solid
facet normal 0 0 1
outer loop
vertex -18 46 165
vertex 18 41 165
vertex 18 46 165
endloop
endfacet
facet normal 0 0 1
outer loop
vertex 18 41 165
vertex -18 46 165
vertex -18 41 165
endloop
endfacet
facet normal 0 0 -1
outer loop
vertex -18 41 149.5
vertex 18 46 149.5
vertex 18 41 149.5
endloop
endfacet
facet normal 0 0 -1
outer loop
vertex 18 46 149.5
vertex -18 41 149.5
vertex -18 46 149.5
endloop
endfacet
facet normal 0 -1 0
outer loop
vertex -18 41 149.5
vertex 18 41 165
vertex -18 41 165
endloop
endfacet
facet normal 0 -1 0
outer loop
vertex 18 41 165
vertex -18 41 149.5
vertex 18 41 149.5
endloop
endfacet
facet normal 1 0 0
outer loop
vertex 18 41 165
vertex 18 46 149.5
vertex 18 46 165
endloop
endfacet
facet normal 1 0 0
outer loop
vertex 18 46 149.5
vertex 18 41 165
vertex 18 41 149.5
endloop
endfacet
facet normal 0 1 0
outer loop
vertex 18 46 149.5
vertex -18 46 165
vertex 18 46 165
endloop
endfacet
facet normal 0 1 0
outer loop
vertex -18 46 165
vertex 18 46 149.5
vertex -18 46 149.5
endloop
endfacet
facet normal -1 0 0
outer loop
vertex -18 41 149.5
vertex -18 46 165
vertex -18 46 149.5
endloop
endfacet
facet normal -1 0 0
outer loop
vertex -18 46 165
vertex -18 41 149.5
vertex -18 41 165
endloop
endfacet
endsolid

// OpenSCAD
// file: local_modules/scad-utils/mirror.scad
// Copyright (c) 2013 Oskar Linde. All rights reserved.
// License: BSD
//
// This library contains simple mirroring functions
//
// mirror_x()
// mirror_y()
// mirror_z()


module mirror_x() {
  union() {
    child();
    scale([-1,1,1]) child();
  }
}

module mirror_y() {
  union() {
    child();
    scale([1,-1,1]) child();
  }
}

module mirror_z() {
  union() {
    child();
    scale([1,1,-1]) child();
  }
}
// file: local_modules/opiz_mount.scad
include <scad-utils/mirror.scad>

OPIZ_HOLES_BETWEEN_X=40.5;
OPIZ_HOLES_BETWEEN_Y=42;

OPIZ_MOUNT_X=4;
OPIZ_MOUNT_Z=1.5;
OPIZ_MOUNT_Y=OPIZ_MOUNT_X+4;

module opiz_mount_holes() {
  mirror_x()
  mirror_y()
  translate([OPIZ_HOLES_BETWEEN_X/2, OPIZ_HOLES_BETWEEN_Y/2, -3]) 
  cylinder(d=1.8, h=10, center=!true);
}

module opiz_mount_base() {
  mirror_x()
  mirror_y()
  translate([OPIZ_HOLES_BETWEEN_X/2, OPIZ_HOLES_BETWEEN_Y/2, 0]){
    // trapezoid
    hull(){
      // top
      translate([0, 0, OPIZ_MOUNT_Z])
      linear_extrude(height=0.01, center=!true, convexity=10, twist=0)
      square(size=[OPIZ_MOUNT_X, OPIZ_MOUNT_X], center=true);

      // bottom
      linear_extrude(height=0.01, center=!true, convexity=10, twist=0)
      square(size=[OPIZ_MOUNT_X, OPIZ_MOUNT_Y], center=true);
    }
  }
}

module opiz_mount(holes=false) {
  if (holes){
    opiz_mount_holes();
  }else{
    opiz_mount_base();
  }
}
// file: local_modules/lcd.scad
LCD_X=76;
LCD_Y=1.5;
LCD_Z=138;
LCD_DISP_X=LCD_X - 1.5 * 2;
LCD_DISP_Z_OFFSET_FROM_BOTTOM=6;
LCD_DISP_Z=LCD_Z-LCD_DISP_Z_OFFSET_FROM_BOTTOM - 1.5;

module lcd(margin=0, draw_display_region=false) {
  translate([0, 0, LCD_Z/2]){
    cube(size=[LCD_X+margin, LCD_Y+margin, LCD_Z+margin], center=true);

    if(draw_display_region){
      translate([0, 0, -(LCD_Z - LCD_DISP_Z)/2 + LCD_DISP_Z_OFFSET_FROM_BOTTOM]) 
      color("green", 0.5)
      cube(size=[LCD_DISP_X, LCD_Y, LCD_DISP_Z], center=true);
    }
  }
}
// file: scad-utils/morphology.scad
// Copyright (c) 2013 Oskar Linde. All rights reserved.
// License: BSD
//
// This library contains basic 2D morphology operations
//
// outset(d=1)            - creates a polygon at an offset d outside a 2D shape
// inset(d=1)             - creates a polygon at an offset d inside a 2D shape
// fillet(r=1)            - adds fillets of radius r to all concave corners of a 2D shape
// rounding(r=1)          - adds rounding to all convex corners of a 2D shape
// shell(d,center=false)  - makes a shell of width d along the edge of a 2D shape
//                        - positive values of d places the shell on the outside
//                        - negative values of d places the shell on the inside
//                        - center=true and positive d places the shell centered on the edge

module outset(d=1) {
	// Bug workaround for older OpenSCAD versions
	if (version_num() < 20130424) render() outset_extruded(d) children();
	else minkowski() {
		circle(r=d);
		children();
	}
}

module outset_extruded(d=1) {
   projection(cut=true) minkowski() {
        cylinder(r=d);
        linear_extrude(center=true) children();
   }
}

module inset(d=1) {
	 render() inverse() outset(d=d) inverse() children();
}

module fillet(r=1) {
	inset(d=r) render() outset(d=r) children();
}

module rounding(r=1) {
	outset(d=r) inset(d=r) children();
}

module shell(d,center=false) {
	if (center && d > 0) {
		difference() {
			outset(d=d/2) children();
			inset(d=d/2) children();
		}
	}
	if (!center && d > 0) {
		difference() {
			outset(d=d) children();
			children();
		}
	}
	if (!center && d < 0) {
		difference() {
			children();
			inset(d=-d) children();
		}
	}
	if (d == 0) children();
}


// Below are for internal use only

module inverse() {
	difference() {
		square(1e5,center=true);
		children();
	}
}


// TEST CODE

use <mirror.scad>

module arrow(l=1,w=.6,t=0.15) {
	mirror_y() polygon([[0,0],[l,0],[l-w/2,w/2],[l-w/2-sqrt(2)*t,w/2],[l-t/2-sqrt(2)*t,t/2],[0,t/2]]);
}

module shape() {
	polygon([[0,0],[1,0],[1.5,1],[2.5,1],[2,-1],[0,-1]]);
}

if(0) assign($fn=32) {

	for (p = [0:10*3-1]) assign(o=floor(p/3)) {
		translate([(p%3)*2.5,-o*3]) {
			//%if (p % 3 == 1) translate([0,0,1]) shape();
			if (p % 3 == 0) shape();
			if (p % 3 == 1) translate([0.6,0]) arrow();
			if (p % 3 == 2) {
				if (o == 0) inset(d=0.3) shape();
				if (o == 1) outset(d=0.3) shape();
				if (o == 2) rounding(r=0.3) shape();
				if (o == 3) fillet(r=0.3) shape();
				if (o == 4) shell(d=0.3) shape();
				if (o == 5) shell(d=-0.3) shape();
				if (o == 6) shell(d=0.3,center=true) shape();
				if (o == 7) rounding(r=0.3) fillet(r=0.3) shape();
				if (o == 8) shell(d=0.3,center=true) fillet(r=0.3) rounding(r=0.3) shape();
				if (o == 9) shell(d=-0.3) fillet(r=0.3) rounding(r=0.3) shape();
			}
		}
	}
}
// file: scad-utils/mirror.scad
// Copyright (c) 2013 Oskar Linde. All rights reserved.
// License: BSD
//
// This library contains simple mirroring functions
//
// mirror_x()
// mirror_y()
// mirror_z()


module mirror_x() {
  union() {
    child();
    scale([-1,1,1]) child();
  }
}

module mirror_y() {
  union() {
    child();
    scale([1,-1,1]) child();
  }
}

module mirror_z() {
  union() {
    child();
    scale([1,1,-1]) child();
  }
}
// file: _kagedourou_bottom_display_holder.scad
include <./_kagedourou_top.scad>
include <./_kagedourou_bottom_panel.scad>

KD_BOTTOM_DISP_HOLDER_X=30;
KD_BOTTOM_DISP_HOLDER_Y=7;
KD_BOTTOM_DISP_HOLDER_Z=10;

module kagedourou_bottom_display_holder() {
  translate([0, 0, KD_BOTTOM_PANEL_ZPOS]){
    difference() {
      translate([0, KD_BOTTOM_PANEL_Y/2 - KD_BOTTOM_DISP_HOLDER_Y/2 + LCD_Y, 0])
      translate([0, 0, -KD_BOTTOM_DISP_HOLDER_Z/2])
      difference() {
        cube(size=[KD_BOTTOM_DISP_HOLDER_X, KD_BOTTOM_DISP_HOLDER_Y, KD_BOTTOM_DISP_HOLDER_Z], center=true);

        // hold LCD with this edge
        translate([0, KD_BOTTOM_DISP_HOLDER_Y-2.5, -3]) 
        cube(size=[KD_BOTTOM_DISP_HOLDER_X+1, KD_BOTTOM_DISP_HOLDER_Y, KD_BOTTOM_DISP_HOLDER_Z], center=true);
      }

      // screw holes
      mirror_x()
      translate([KD_BOTTOM_DISP_HOLDER_SCREW_XPOS, KD_TOP_X/2 - KD_FRAME_T/2 - KD_BOTTOM_DISP_HOLDER_SCREW_YPOS/2, 0])
      cylinder(d=2, h=KD_BOTTOM_DISP_HOLDER_Z*3, center=true);
    }
  }
}
// file: _kagedourou_bottom_panel.scad
include <./_kagedourou_top.scad>
include <./_kagedourou_bottom_frame_b.scad>
include <./local_modules/opiz_mount.scad>

KD_BOTTOM_PANEL_X=KD_TOP_X - KD_FRAME_T - LCD_Y*2 - 0.5;
KD_BOTTOM_PANEL_Y=KD_BOTTOM_PANEL_X;
KD_BOTTOM_PANEL_Z=1;
KD_BOTTOM_PANEL_ZPOS=KD_BOTTOM_FRAME_ZPOS + KD_FRAME_T/2;

KD_MAIN_LIGHT_BAR_SCREW_XPOS=10;

KD_BOTTOM_DISP_HOLDER_SCREW_XPOS=10;
KD_BOTTOM_DISP_HOLDER_SCREW_YPOS=10;


module kagedourou_bottom_panel_base() {
  linear_extrude(height=KD_BOTTOM_PANEL_Z, center=!true, convexity=10, twist=0)
  difference(){
    rounding(r=2)
    square(size=[KD_BOTTOM_PANEL_X, KD_BOTTOM_PANEL_Y], center=true);

    // holes for screws to bottom_frame_b
    for (i=[1:3]) {
      rotate([0, 0, 90*i]) 
      translate([0, KD_TOP_Y/2 - KD_FRAME_T/2 - 10/2, 0]) 
      circle(d=2.5);
    }

    // holes for bottom_display_holder 
    mirror_x()
    translate([KD_BOTTOM_DISP_HOLDER_SCREW_XPOS, KD_TOP_X/2 - KD_FRAME_T/2 - KD_BOTTOM_DISP_HOLDER_SCREW_YPOS/2, 0]) 
    circle(d=2.5);

    // holes for main_light_bar
    translate([0, KD_MAIN_LIGHT_BAR_SCREW_XPOS, 0]) 
    circle(d=2.5);

    // holes for cabling
    translate([0, KD_BOTTOM_PANEL_Y/2-10/2-8, 0]) 
    rounding(r=1)
    square(size=[20, 10], center=true);
    
    // center space
    translate([0, -10, 0]) 
    circle(d=8);
  }
}


module _kd_opiz_mount_offset() {
  KD_OPIZ_MOUNT_OFFSET_X=OPIZ_HOLES_BETWEEN_X/2-10;
  KD_OPIZ_MOUNT_OFFSET_Y=-5;

  translate([KD_OPIZ_MOUNT_OFFSET_X, KD_OPIZ_MOUNT_OFFSET_Y, KD_BOTTOM_PANEL_Z])
  children(0);
}

module kagedourou_bottom_panel() {
  translate([0, 0, KD_BOTTOM_PANEL_ZPOS]){
    difference(){
      union(){
        kagedourou_bottom_panel_base();

        _kd_opiz_mount_offset()
        opiz_mount();
      }

      _kd_opiz_mount_offset()
      opiz_mount(holes=true);
    }
  }
}
// file: _kagedourou_side_frame.scad
include <./_kagedourou_top.scad>

KD_SIDE_FRAME_Z=155;

module kagedourou_side_frame() {
  translate([KD_TOP_X/2 - KD_FRAME_T/2, KD_TOP_Y/2 - KD_FRAME_T/2, KD_FRAME_T]) 
  linear_extrude(height=KD_SIDE_FRAME_Z, center=!true, convexity=10, twist=0)
  difference(){
    square(size=[KD_FRAME_T, KD_FRAME_T], center=true);

    // inner space
    rotate([0, 0, 180])
    square(size=[KD_FRAME_INNER_T, KD_FRAME_INNER_T], center=!true);
  }
}
// file: _kagedourou_bottom_frame_b.scad
include <./_kagedourou_top.scad>

$fn=50;

KD_BOTTOM_FRAME_ZPOS=KD_FRAME_T + LCD_DISP_Z - LCD_DISP_Z_OFFSET_FROM_BOTTOM + KD_FRAME_T;

module kagedourou_bottom_frame_b() {
  // align base XY-plane to the bottom edge of LCD's visible area
  translate([0, 0, KD_BOTTOM_FRAME_ZPOS]){
    // %color("red", 0.05) square(size=[100, 100], center=true);

    rotate([0, 0, 90]) 
    translate([0, KD_TOP_Y/2 - KD_FRAME_INNER_T/2, 0]) {
      cube(size=[KD_TOP_X - KD_FRAME_T*2, KD_FRAME_INNER_T, KD_FRAME_T], center=true);

      // tab for bottom panel
      TAB_H=10;
      TAB_W=10;
      TAB_Z=4;

      translate([0, 0, KD_FRAME_T/2 - TAB_Z]) 
      linear_extrude(height=TAB_Z, center=!true, convexity=10, twist=0)
      translate([0, -KD_FRAME_INNER_T/2 - TAB_H/2, 0])
      difference() {
        square(size=[10, TAB_H], center=true);

        // screw hole
        circle(d=2);      
      }
    }
  }
}
// file: _kagedourou_bottom_frame_a.scad
include <./_kagedourou_top.scad>

module kagedourou_bottom_frame_a() {
  translate([0, KD_TOP_Y/2 - KD_FRAME_INNER_T/2, KD_FRAME_T*2 + LCD_DISP_Z - LCD_DISP_Z_OFFSET_FROM_BOTTOM]) 
  cube(size=[KD_TOP_X - KD_FRAME_T*2, KD_FRAME_INNER_T, KD_FRAME_T], center=true);
}
// file: _kagedourou_top.scad
include <scad-utils/mirror.scad>
include <scad-utils/morphology.scad>

include <./local_modules/lcd.scad>


module lcd_for_top(){
  translate([0, KD_TOP_Y/2 - LCD_Y/2 - (KD_FRAME_INNER_T + 0.5), LCD_Z + KD_FRAME_T - 2]) 
  rotate([180, 0, 0]) 
  lcd(draw_display_region=true);
}

KD_FRAME_T=10;
KD_FRAME_INNER_T=5;

KD_TOP_X=LCD_X-2*2+KD_FRAME_T*2;
KD_TOP_Y=KD_TOP_X;
echo(str("KD_TOP_X=", KD_TOP_X));
echo(str("KD_TOP_Y=", KD_TOP_Y));

KD_TOP_DISP_HOLDER_X=10;
KD_TOP_DISP_HOLDER_Y=4*2;

module kagedourou_top_display_holder(args) {
  translate([0, KD_TOP_Y/2 - KD_FRAME_INNER_T, 0]){
    difference() {

      linear_extrude(height=KD_FRAME_T, center=!true, convexity=10, twist=0)
      square(size=[KD_TOP_DISP_HOLDER_X, KD_TOP_DISP_HOLDER_Y], center=true);

      translate([0, 0, KD_FRAME_T - 2]) 
      linear_extrude(height=KD_FRAME_T, center=!true, convexity=10, twist=0)
      square(size=[KD_TOP_DISP_HOLDER_X, (LCD_Y + 1) * 2], center=true);
    }

  }
}

module kagedourou_top() {
  difference() {
    linear_extrude(height=KD_FRAME_T, center=!true, convexity=10, twist=0)
    difference(){
      square(size=[KD_TOP_X, KD_TOP_Y], center=true);

      // top window
      offset(delta=-KD_FRAME_T)
      square(size=[KD_TOP_X, KD_TOP_Y], center=true);
    }

    translate([0, 0, 5]) 
    linear_extrude(height=KD_FRAME_T, center=!true, convexity=10, twist=0)
    offset(delta=(KD_FRAME_T - KD_FRAME_INNER_T))
    offset(delta=-KD_FRAME_T)
    square(size=[KD_TOP_X, KD_TOP_Y], center=true);
  }

  kagedourou_top_display_holder();
}

// kagedourou_top();
// main file
include <./_kagedourou_top.scad>
include <./_kagedourou_bottom_frame_a.scad>
include <./_kagedourou_bottom_frame_b.scad>
include <./_kagedourou_side_frame.scad>
include <./_kagedourou_bottom_panel.scad>
include <./_kagedourou_bottom_display_holder.scad>

$fn=50;

%
lcd_for_top();
%
kagedourou_top();
%
for (i=[0:3]) {
  rotate([0, 0, 90*i])
  kagedourou_side_frame();
}
%
kagedourou_bottom_frame_a();
%
kagedourou_bottom_frame_b();
%
kagedourou_bottom_panel();
%
kagedourou_bottom_display_holder();

KD_TOTAL_Z=KD_FRAME_T + KD_SIDE_FRAME_Z;
KD_BOTTOM_SPACE_Z=KD_TOTAL_Z - KD_BOTTOM_FRAME_ZPOS - KD_FRAME_T/2;

module kagedourou_support_bottom_space() {
  translate([0, KD_TOP_Y/2 - KD_FRAME_INNER_T/2, KD_TOTAL_Z])
  translate([0, 0, -KD_BOTTOM_SPACE_Z/2]) 
  cube(size=[(KD_TOP_X - KD_FRAME_T*2)/2, KD_FRAME_INNER_T, KD_BOTTOM_SPACE_Z], center=true);
}


kagedourou_support_bottom_space();
